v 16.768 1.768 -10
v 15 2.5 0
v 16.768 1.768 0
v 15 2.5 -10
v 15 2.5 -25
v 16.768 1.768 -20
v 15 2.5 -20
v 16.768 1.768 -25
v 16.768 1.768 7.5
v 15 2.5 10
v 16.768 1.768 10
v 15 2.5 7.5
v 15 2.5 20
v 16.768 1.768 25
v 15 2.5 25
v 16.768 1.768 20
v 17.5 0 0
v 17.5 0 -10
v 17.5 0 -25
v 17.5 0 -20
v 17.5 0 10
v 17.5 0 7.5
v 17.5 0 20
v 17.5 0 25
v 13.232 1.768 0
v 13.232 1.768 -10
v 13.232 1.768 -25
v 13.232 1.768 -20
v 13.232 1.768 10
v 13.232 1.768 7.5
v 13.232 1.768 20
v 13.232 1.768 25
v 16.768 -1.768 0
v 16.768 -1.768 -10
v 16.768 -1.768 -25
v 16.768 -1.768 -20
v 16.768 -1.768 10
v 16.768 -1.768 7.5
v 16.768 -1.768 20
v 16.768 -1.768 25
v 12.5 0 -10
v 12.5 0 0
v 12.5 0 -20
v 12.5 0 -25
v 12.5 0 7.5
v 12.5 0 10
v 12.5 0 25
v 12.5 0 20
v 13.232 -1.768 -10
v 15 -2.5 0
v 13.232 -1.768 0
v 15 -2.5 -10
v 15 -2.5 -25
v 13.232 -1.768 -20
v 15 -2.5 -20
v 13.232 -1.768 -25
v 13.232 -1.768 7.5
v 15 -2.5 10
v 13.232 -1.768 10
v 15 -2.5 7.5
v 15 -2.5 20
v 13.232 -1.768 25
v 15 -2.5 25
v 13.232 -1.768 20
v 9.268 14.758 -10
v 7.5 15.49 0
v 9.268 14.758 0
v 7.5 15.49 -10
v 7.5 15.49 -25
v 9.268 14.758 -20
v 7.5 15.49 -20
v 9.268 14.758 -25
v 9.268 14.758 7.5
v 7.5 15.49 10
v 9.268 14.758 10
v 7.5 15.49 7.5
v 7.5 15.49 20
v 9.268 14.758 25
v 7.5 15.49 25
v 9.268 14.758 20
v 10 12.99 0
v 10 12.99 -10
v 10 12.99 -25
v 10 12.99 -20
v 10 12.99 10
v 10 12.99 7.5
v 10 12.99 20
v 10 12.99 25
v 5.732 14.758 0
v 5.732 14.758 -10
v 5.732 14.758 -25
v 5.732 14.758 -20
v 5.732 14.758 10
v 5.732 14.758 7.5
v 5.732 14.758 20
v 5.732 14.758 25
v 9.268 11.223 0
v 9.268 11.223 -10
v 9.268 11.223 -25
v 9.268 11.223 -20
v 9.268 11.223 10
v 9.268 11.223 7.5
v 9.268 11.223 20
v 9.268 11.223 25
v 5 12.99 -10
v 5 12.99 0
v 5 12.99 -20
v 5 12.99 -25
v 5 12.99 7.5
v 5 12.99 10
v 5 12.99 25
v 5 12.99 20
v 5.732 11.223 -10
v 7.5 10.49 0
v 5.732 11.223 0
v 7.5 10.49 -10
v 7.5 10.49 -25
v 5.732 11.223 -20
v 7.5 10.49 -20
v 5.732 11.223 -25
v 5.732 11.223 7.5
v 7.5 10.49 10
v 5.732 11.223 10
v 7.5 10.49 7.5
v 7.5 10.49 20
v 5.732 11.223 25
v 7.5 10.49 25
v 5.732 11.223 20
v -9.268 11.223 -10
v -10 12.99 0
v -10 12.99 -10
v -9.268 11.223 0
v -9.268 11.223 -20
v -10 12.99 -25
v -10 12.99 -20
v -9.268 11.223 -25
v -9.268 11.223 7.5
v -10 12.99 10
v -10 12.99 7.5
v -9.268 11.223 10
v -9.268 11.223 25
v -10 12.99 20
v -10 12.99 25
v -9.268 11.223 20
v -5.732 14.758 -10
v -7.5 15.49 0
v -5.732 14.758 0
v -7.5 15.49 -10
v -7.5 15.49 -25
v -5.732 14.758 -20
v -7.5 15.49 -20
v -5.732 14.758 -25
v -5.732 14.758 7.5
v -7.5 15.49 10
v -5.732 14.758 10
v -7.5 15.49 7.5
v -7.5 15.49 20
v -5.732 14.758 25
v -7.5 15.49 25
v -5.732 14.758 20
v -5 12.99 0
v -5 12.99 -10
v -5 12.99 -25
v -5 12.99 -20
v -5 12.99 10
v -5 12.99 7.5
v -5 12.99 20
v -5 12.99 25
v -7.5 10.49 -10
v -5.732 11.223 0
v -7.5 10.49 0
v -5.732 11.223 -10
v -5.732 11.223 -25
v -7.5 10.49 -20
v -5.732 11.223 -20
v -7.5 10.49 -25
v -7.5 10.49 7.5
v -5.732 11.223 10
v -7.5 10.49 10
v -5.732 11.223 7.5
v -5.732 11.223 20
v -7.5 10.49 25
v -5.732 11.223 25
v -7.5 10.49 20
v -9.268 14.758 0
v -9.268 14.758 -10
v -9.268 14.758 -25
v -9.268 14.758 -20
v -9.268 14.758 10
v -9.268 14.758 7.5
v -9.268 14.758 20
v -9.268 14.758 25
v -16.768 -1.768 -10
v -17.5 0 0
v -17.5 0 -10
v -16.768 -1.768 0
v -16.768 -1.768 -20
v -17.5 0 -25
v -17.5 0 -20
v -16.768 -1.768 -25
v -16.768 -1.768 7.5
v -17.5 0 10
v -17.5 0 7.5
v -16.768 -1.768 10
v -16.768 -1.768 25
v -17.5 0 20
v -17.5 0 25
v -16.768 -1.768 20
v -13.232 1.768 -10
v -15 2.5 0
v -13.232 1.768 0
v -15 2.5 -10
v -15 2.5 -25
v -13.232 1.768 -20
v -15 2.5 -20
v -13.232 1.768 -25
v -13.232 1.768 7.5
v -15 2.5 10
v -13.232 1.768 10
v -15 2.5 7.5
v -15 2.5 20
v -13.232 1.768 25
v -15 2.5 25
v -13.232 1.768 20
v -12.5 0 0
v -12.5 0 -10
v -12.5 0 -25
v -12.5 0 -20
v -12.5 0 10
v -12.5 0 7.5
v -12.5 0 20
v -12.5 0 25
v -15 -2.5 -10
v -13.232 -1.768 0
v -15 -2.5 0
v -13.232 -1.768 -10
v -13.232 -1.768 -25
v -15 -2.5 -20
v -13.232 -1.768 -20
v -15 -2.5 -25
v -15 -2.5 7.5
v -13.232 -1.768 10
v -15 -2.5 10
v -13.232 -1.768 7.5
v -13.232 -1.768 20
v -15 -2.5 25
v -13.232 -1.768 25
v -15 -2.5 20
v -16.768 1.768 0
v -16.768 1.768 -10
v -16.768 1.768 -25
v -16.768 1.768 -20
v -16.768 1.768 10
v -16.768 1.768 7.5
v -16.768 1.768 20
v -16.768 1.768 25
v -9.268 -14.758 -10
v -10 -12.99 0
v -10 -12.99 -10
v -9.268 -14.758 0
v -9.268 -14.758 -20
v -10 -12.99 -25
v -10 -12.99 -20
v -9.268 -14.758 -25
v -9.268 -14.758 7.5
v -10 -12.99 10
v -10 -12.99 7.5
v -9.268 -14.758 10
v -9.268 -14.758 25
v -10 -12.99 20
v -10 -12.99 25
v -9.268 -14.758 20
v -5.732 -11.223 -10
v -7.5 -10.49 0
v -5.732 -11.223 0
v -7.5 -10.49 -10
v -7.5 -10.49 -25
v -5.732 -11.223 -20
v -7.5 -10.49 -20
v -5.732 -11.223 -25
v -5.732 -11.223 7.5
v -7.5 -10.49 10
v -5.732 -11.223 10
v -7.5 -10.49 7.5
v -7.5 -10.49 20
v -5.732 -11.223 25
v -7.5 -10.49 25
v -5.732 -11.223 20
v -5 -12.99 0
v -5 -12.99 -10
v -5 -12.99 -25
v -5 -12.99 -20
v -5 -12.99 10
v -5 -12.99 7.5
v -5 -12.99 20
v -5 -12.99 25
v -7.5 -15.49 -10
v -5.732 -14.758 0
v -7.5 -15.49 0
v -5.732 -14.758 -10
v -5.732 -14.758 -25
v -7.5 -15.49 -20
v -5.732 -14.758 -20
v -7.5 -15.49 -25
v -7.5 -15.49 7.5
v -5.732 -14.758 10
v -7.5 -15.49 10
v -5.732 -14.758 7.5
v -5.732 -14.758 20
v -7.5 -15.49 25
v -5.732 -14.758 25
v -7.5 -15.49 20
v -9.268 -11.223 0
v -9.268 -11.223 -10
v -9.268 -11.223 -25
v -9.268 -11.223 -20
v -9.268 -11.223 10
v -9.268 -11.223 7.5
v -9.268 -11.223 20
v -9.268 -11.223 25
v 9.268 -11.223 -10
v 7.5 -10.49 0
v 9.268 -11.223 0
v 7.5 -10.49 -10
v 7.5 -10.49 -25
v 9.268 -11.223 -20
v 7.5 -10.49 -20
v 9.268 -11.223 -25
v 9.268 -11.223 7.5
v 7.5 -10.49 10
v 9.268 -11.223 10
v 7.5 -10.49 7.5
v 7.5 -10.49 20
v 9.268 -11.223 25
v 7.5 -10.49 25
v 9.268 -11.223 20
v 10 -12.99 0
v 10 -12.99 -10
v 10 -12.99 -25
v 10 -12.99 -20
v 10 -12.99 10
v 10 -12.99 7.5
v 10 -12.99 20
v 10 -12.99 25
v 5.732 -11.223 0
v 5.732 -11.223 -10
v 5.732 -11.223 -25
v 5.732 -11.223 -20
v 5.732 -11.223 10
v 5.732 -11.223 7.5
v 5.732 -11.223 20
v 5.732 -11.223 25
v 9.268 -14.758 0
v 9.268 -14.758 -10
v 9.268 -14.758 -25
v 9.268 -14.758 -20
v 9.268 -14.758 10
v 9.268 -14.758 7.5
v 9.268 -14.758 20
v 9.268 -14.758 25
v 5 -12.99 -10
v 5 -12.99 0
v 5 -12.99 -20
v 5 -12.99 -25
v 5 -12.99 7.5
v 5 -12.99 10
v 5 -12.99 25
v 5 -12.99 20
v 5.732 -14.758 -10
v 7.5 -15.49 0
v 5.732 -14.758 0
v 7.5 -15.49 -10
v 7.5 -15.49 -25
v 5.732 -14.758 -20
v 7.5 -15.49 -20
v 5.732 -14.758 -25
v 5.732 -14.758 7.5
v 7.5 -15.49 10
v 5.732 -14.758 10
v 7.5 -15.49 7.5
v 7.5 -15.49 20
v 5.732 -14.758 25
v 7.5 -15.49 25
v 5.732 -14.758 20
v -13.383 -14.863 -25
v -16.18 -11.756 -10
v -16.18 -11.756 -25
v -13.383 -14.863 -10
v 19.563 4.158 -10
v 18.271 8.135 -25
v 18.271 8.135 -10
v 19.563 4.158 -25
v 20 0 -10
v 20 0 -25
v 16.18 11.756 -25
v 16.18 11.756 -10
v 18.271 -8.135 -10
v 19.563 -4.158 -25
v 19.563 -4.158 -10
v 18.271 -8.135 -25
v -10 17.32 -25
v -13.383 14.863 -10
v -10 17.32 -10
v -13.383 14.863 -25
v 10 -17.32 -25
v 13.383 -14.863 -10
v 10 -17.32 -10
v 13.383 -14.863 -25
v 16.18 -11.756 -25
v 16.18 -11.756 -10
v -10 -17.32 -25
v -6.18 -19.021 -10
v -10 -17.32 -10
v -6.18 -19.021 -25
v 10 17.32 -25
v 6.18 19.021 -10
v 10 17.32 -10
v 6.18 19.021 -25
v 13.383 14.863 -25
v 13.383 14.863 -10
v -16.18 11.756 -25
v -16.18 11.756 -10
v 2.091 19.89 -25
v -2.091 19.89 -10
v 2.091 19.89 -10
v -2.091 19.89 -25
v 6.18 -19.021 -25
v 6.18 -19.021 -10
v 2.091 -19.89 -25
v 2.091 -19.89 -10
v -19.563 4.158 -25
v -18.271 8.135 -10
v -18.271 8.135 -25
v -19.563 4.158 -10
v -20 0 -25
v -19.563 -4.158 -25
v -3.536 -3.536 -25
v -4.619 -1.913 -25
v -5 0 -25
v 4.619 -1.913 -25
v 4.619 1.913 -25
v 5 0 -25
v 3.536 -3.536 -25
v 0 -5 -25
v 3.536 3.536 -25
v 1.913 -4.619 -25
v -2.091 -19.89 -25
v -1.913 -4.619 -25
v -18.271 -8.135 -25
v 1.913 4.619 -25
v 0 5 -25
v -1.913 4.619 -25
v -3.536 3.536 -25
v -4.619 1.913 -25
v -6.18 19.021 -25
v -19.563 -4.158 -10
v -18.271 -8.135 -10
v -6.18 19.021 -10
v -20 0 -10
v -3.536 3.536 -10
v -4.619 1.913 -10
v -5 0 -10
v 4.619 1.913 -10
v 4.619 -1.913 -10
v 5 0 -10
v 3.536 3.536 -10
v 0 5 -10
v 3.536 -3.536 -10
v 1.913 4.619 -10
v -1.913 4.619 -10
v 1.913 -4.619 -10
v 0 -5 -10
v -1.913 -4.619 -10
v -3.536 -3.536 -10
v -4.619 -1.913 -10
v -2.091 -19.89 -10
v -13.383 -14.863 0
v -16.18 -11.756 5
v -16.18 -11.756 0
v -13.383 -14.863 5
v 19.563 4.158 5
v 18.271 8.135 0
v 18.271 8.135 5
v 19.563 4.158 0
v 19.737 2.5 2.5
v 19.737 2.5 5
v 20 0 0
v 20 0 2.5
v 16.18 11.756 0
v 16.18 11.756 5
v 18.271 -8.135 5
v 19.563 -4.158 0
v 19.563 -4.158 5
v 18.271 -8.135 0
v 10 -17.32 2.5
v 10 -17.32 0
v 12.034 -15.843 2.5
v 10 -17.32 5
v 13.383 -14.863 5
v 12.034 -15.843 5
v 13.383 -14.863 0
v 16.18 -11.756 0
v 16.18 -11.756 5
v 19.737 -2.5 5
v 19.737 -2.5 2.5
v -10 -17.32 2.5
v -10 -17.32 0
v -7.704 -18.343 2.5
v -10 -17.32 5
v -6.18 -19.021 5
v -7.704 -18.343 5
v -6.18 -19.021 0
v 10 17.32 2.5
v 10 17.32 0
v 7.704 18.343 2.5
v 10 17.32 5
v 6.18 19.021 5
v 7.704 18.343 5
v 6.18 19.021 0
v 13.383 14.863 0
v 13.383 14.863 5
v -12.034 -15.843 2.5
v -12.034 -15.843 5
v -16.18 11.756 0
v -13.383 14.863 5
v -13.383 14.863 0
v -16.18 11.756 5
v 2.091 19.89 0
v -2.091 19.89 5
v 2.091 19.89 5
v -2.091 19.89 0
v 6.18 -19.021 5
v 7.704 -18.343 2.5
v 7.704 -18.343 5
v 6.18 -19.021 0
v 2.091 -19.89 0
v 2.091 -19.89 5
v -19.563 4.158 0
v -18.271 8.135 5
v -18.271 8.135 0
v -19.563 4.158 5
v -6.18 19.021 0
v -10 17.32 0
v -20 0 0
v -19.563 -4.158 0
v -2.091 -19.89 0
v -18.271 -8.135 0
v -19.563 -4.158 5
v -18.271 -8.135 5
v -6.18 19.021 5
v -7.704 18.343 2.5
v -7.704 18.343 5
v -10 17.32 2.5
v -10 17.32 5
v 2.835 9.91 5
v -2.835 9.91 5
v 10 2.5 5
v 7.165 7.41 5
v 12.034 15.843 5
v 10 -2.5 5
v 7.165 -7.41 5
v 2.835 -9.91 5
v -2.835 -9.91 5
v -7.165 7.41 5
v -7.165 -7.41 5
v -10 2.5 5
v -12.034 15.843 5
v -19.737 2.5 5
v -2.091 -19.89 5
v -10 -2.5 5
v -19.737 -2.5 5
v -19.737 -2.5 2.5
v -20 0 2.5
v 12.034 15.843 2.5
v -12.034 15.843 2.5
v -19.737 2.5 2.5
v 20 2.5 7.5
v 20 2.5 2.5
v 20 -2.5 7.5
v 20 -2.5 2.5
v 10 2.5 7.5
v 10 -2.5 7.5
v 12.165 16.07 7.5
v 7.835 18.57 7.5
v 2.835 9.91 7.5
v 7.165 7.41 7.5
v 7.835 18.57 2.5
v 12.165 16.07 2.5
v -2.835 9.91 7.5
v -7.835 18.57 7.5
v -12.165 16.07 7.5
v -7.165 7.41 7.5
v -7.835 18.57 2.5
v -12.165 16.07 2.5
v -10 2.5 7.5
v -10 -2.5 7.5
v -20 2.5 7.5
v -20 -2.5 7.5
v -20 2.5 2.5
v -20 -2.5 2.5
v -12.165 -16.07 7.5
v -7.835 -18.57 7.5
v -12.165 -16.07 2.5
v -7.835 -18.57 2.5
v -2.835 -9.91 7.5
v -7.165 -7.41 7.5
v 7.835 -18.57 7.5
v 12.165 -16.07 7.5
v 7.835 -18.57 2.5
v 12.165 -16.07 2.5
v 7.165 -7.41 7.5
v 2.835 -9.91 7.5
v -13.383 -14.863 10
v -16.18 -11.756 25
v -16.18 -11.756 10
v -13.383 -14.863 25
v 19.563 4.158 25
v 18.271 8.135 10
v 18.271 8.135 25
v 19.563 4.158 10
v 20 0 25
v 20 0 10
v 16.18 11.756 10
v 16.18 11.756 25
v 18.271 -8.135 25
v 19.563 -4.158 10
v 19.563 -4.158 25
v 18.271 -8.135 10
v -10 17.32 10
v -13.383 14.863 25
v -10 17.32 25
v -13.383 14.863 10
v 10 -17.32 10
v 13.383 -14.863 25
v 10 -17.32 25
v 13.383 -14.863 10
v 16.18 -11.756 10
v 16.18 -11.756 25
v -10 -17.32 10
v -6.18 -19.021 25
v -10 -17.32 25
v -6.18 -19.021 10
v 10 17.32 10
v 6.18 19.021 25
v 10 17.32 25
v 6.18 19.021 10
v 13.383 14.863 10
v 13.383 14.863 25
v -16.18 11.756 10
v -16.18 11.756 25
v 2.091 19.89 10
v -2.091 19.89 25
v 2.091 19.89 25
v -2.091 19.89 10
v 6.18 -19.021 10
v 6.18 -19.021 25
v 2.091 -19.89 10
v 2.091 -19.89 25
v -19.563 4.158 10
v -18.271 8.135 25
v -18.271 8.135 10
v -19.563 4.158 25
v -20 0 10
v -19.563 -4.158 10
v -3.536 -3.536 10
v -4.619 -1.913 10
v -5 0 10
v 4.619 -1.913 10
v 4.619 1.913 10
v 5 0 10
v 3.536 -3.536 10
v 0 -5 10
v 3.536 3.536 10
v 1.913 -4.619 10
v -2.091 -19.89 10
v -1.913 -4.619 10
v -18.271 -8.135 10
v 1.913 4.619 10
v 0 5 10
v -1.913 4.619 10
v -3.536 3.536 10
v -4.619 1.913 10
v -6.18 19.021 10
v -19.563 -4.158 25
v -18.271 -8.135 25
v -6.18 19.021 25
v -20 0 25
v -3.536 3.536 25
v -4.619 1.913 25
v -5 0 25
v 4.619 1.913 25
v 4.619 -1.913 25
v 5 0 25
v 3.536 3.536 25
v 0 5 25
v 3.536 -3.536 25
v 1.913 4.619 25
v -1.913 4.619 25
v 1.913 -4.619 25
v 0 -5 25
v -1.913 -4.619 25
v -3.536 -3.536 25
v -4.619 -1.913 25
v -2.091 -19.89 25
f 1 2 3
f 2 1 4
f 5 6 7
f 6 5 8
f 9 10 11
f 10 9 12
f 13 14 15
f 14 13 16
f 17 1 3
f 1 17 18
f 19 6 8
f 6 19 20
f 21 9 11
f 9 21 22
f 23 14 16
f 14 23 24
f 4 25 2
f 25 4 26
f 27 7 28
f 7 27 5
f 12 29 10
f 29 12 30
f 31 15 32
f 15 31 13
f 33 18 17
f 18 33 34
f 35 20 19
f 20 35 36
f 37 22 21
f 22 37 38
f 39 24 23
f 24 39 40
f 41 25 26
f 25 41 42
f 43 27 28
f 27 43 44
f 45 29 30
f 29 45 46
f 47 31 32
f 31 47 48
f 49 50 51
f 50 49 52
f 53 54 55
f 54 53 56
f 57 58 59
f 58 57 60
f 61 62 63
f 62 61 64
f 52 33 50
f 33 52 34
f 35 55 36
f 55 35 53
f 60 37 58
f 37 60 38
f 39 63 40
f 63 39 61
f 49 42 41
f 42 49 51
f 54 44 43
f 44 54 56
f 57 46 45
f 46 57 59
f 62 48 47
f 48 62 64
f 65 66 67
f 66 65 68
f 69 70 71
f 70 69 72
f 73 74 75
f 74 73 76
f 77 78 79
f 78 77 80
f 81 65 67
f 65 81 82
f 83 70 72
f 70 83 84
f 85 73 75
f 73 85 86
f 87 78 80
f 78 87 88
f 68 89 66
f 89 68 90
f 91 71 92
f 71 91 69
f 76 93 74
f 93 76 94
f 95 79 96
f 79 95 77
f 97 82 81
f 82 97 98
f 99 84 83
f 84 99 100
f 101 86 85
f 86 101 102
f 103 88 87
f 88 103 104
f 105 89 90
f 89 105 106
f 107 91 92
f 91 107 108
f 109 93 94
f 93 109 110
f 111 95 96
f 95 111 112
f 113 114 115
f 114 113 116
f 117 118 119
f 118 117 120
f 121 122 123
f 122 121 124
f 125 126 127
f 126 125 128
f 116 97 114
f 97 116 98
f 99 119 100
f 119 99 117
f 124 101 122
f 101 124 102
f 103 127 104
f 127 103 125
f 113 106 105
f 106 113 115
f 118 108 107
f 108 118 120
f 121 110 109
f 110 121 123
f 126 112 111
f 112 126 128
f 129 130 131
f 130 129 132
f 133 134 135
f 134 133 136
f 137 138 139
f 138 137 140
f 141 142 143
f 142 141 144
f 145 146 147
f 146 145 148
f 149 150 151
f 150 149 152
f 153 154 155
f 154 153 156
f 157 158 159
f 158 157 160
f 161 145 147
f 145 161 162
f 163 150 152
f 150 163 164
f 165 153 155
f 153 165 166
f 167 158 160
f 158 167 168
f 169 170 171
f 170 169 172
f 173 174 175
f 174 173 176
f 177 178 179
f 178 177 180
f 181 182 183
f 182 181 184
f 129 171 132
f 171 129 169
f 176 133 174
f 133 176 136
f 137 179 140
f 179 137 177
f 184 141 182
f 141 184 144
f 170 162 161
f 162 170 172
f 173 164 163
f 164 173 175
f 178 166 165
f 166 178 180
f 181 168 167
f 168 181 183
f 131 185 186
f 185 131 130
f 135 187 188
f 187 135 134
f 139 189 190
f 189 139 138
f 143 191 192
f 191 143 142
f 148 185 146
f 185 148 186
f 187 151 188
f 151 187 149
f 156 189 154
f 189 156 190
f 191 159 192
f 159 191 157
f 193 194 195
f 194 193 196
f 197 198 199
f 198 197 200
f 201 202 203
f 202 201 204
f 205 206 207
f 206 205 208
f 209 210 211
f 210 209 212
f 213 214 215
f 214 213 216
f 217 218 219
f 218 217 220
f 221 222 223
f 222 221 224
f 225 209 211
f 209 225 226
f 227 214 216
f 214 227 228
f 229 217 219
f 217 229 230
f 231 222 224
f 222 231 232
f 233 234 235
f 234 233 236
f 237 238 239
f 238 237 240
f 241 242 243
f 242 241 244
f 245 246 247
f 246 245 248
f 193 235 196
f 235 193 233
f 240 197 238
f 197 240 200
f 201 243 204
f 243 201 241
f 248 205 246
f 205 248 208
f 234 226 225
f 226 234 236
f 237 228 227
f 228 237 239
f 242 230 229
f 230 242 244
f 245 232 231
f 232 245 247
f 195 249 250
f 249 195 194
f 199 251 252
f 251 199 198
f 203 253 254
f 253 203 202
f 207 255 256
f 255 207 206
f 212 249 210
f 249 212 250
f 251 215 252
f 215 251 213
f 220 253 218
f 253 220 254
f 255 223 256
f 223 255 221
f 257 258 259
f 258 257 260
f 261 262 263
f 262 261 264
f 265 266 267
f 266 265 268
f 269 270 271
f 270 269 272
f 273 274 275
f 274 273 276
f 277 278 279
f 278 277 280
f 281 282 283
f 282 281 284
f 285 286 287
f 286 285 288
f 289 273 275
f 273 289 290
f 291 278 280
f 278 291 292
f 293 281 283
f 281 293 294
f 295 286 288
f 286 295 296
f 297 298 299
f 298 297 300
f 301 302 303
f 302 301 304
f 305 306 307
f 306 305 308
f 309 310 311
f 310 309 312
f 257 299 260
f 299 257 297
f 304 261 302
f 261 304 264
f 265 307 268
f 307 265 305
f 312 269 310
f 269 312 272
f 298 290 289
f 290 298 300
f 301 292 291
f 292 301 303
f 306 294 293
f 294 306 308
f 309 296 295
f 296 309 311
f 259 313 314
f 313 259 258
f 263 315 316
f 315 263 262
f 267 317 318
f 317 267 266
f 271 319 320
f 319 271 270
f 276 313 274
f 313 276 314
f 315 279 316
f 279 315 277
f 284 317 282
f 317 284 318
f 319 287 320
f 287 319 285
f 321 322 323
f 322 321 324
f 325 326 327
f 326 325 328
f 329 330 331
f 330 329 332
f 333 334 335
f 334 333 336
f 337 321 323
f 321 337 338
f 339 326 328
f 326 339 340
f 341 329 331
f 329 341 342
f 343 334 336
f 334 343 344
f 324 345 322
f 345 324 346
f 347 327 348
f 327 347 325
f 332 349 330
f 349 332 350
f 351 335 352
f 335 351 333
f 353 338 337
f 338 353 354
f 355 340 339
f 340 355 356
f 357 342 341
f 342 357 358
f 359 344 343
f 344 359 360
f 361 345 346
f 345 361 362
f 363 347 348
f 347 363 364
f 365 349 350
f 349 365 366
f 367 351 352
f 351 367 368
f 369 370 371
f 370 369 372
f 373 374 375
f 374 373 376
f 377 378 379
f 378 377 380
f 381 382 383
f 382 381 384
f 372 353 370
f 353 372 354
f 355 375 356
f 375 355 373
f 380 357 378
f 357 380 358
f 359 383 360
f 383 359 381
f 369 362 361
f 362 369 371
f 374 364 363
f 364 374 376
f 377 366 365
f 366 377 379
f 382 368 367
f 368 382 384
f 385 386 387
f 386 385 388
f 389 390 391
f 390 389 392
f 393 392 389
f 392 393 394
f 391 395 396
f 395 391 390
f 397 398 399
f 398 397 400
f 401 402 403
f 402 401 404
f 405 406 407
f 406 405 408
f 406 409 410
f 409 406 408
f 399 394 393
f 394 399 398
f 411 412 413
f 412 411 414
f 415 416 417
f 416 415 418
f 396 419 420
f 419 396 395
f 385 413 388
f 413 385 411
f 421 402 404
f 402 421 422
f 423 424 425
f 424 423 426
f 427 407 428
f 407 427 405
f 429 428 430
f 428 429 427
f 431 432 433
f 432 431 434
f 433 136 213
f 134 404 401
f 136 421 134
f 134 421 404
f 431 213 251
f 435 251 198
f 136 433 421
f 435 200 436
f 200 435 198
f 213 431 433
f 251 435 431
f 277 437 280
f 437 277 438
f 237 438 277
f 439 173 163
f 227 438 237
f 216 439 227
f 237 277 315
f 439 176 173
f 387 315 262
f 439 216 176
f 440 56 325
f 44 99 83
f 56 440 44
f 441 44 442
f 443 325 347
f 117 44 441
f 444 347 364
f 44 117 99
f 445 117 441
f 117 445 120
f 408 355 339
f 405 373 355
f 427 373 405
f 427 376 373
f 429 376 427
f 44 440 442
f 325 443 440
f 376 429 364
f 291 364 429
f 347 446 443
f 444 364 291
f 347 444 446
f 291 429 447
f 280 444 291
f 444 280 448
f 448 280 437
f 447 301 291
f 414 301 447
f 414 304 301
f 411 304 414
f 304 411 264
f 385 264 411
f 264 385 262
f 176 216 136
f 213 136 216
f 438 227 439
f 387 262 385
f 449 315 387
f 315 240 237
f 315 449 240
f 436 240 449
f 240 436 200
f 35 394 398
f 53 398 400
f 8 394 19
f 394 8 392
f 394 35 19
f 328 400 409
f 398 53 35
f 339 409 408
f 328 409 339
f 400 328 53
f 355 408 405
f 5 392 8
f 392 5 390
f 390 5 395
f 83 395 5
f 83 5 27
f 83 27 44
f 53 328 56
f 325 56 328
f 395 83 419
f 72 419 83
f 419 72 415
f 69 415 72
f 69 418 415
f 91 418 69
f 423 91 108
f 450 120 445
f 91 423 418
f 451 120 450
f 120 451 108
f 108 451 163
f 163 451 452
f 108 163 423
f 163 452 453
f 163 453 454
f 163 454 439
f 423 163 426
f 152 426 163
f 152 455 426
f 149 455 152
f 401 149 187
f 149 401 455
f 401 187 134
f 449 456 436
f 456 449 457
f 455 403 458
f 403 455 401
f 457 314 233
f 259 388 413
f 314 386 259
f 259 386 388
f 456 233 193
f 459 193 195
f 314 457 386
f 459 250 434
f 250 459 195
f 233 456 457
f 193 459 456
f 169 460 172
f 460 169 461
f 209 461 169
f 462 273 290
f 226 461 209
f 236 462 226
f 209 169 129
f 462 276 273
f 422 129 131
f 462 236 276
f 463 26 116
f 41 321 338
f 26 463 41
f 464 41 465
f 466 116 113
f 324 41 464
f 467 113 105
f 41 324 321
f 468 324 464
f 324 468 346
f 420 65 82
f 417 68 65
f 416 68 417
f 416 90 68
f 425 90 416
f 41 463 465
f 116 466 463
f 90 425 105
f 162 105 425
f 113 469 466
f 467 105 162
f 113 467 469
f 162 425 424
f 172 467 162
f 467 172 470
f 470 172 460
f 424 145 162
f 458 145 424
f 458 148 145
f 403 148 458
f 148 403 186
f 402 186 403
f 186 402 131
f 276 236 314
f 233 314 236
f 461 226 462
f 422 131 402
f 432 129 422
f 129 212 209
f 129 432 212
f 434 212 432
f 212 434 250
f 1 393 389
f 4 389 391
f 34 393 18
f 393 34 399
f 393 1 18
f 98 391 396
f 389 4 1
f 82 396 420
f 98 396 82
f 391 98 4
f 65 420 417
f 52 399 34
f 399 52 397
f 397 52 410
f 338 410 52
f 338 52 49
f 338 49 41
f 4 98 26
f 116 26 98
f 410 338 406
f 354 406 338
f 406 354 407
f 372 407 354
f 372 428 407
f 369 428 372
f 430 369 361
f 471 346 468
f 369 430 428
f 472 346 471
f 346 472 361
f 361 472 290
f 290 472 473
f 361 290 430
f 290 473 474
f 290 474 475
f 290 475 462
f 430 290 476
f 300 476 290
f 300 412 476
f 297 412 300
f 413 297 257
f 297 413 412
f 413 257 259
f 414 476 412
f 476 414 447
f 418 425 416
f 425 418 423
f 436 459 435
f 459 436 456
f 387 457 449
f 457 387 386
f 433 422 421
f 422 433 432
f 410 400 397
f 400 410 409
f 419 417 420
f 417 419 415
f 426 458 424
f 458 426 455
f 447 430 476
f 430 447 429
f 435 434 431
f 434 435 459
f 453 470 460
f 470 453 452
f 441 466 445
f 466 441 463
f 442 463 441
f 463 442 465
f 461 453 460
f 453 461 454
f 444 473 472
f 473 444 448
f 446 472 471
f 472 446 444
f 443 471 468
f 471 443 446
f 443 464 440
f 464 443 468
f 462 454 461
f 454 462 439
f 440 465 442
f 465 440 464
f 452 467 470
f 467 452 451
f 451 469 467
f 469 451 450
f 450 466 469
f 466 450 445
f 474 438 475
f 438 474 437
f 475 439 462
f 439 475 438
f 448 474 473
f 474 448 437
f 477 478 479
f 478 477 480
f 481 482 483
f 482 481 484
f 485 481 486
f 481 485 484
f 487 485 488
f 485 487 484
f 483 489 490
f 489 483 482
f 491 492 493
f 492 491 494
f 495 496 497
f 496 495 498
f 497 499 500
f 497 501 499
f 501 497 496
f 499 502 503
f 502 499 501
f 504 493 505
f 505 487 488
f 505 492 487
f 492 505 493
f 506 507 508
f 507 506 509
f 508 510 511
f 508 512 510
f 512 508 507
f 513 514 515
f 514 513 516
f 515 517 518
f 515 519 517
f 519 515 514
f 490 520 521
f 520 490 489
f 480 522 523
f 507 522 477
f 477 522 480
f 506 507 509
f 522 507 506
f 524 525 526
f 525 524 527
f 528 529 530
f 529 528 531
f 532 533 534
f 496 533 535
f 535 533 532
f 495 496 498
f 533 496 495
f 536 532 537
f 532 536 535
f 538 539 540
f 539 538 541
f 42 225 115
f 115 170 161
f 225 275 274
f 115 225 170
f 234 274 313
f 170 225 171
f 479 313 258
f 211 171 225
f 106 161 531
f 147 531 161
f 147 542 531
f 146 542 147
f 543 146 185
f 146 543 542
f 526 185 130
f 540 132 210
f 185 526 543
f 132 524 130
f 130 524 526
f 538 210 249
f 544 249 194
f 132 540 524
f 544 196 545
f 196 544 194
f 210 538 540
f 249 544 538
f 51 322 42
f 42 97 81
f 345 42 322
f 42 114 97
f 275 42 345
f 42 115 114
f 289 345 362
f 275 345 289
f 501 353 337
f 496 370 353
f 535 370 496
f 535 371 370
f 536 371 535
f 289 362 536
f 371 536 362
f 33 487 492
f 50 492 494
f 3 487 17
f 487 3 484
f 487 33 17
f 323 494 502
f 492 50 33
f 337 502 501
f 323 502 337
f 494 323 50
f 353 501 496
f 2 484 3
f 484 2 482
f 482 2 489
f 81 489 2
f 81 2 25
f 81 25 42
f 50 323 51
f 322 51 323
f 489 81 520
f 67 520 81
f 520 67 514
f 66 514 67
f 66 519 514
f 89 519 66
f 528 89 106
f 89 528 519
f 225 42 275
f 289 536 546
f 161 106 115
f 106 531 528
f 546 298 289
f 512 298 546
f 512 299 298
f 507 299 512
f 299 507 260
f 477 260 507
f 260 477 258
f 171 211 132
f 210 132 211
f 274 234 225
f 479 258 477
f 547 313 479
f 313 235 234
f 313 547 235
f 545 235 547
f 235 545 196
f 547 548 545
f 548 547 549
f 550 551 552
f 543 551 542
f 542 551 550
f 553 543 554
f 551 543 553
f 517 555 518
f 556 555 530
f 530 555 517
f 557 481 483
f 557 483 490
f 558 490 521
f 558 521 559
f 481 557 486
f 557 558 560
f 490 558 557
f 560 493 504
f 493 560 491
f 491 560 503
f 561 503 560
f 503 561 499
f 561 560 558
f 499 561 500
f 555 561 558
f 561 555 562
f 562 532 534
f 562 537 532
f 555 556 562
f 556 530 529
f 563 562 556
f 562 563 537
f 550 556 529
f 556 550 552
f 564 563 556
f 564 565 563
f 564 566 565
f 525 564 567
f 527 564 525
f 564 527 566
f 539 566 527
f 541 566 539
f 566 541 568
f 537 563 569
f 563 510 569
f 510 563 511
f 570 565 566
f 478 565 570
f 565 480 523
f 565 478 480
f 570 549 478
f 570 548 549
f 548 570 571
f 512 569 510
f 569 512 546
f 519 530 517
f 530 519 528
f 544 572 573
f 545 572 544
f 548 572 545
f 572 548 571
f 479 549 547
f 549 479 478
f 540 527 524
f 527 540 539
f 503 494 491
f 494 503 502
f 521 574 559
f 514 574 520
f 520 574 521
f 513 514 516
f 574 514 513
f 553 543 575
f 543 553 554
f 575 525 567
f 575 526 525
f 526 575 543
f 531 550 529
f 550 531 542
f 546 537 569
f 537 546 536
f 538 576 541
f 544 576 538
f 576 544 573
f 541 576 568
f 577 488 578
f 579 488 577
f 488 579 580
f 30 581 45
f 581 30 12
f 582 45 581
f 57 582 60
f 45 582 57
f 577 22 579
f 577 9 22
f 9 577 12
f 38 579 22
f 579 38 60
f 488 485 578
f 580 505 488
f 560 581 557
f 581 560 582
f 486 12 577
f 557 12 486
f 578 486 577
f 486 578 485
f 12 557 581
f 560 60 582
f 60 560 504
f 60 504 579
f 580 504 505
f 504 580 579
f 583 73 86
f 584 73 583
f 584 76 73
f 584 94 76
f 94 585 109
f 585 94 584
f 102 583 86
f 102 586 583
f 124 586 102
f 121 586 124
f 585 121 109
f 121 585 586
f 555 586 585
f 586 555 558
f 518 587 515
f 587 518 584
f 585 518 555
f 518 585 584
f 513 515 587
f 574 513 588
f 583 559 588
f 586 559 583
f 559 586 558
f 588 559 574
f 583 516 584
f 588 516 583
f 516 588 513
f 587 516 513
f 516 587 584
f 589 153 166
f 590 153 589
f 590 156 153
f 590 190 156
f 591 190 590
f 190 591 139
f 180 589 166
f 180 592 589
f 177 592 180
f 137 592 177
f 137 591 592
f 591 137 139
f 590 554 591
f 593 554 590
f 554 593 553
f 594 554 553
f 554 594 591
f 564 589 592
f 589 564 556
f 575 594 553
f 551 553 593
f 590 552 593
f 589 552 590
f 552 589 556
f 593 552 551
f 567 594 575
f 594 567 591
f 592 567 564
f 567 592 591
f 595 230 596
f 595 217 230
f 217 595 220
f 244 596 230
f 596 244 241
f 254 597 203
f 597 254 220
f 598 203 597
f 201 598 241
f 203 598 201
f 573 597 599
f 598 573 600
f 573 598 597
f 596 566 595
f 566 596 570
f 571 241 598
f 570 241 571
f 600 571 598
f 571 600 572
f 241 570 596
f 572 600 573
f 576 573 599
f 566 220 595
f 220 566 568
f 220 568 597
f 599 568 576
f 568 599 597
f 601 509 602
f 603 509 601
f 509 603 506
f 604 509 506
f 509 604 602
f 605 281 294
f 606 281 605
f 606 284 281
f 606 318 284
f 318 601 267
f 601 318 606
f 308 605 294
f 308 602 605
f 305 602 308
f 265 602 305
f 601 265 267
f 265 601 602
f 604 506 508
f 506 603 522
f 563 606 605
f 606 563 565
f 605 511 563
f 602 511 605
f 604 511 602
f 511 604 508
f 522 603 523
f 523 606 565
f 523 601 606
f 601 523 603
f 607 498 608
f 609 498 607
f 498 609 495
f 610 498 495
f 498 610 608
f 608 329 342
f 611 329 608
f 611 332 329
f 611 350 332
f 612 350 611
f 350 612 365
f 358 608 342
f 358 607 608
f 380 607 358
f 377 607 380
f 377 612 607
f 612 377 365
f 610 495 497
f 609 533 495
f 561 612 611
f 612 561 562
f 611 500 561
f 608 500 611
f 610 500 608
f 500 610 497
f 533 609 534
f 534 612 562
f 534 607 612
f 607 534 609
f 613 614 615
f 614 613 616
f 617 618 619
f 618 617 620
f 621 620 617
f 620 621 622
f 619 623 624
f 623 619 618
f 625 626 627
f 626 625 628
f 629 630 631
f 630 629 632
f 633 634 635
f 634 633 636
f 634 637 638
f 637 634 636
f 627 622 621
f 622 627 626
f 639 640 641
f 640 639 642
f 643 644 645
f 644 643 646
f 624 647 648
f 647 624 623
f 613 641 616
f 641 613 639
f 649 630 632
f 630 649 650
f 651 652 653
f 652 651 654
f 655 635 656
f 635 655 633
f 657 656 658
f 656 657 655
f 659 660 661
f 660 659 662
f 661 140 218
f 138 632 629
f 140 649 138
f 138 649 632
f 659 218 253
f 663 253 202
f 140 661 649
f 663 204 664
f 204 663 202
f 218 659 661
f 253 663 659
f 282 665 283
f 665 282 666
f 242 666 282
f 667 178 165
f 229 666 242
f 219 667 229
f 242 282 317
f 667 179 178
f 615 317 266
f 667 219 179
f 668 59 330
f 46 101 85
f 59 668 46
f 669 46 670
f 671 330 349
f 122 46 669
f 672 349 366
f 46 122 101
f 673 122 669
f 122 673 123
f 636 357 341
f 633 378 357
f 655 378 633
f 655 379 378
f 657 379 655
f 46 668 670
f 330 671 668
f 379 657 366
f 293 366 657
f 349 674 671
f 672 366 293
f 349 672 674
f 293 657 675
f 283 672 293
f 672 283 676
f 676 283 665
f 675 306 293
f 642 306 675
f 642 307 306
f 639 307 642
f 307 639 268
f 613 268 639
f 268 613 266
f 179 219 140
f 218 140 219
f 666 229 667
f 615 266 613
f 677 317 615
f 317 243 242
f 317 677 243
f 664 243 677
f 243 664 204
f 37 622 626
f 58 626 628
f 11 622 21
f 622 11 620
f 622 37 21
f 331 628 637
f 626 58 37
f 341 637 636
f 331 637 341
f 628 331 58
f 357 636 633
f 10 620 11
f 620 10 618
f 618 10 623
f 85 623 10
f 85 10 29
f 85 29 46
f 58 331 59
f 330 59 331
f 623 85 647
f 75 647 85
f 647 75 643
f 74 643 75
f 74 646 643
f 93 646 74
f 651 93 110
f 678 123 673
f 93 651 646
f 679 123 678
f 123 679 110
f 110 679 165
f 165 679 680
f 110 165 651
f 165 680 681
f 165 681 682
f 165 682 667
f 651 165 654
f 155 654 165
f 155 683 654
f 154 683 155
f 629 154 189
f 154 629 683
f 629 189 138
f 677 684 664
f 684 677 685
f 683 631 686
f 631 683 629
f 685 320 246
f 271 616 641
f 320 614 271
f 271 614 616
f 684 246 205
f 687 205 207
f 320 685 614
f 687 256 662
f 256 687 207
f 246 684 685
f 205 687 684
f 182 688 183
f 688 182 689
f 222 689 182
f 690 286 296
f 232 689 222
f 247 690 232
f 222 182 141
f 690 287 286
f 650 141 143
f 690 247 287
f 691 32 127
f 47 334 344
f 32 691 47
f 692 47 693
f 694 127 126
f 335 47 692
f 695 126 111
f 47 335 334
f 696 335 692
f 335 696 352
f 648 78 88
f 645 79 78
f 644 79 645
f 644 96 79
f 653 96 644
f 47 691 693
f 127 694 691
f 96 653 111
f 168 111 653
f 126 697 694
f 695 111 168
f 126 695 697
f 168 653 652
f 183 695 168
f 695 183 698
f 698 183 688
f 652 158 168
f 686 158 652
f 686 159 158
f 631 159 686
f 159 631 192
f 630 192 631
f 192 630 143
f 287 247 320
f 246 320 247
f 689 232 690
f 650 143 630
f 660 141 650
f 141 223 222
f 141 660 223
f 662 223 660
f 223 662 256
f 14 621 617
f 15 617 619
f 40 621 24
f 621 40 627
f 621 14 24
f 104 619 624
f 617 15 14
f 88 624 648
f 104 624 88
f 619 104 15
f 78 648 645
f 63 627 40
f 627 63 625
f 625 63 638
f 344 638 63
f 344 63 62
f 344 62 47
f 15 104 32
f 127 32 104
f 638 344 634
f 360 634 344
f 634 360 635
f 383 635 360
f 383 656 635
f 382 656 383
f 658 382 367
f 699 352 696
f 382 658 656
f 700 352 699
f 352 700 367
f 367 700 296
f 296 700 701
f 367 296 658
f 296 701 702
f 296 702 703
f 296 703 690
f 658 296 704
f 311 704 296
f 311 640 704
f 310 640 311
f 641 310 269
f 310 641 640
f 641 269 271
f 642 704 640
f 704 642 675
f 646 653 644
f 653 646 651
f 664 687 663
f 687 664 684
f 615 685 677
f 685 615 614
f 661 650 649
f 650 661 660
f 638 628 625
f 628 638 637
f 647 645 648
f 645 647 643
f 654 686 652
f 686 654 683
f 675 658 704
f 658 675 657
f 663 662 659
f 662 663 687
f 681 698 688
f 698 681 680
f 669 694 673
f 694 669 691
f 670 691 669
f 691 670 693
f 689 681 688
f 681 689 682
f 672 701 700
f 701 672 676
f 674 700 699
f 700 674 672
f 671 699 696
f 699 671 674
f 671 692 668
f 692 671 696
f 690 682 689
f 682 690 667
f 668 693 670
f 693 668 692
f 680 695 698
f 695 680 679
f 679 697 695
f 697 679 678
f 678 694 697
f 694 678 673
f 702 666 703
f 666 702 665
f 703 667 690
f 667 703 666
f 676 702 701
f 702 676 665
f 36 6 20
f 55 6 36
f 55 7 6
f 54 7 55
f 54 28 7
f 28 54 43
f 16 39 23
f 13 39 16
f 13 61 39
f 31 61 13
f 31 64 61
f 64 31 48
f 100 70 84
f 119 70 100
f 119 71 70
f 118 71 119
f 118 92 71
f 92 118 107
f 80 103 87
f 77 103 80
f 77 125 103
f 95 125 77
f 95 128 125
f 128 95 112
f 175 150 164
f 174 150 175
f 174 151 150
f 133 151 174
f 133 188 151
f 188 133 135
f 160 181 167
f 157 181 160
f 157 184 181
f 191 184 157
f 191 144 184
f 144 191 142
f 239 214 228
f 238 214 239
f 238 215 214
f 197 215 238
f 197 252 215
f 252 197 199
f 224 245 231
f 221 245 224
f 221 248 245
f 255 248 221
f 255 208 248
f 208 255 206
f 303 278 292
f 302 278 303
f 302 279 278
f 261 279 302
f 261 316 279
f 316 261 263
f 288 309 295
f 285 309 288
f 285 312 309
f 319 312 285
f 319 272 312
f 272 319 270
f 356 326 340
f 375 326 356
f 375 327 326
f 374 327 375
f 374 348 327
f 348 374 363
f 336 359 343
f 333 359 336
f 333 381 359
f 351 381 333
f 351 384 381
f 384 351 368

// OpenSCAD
// Parameters
hub_diameter = 40;
hub_length = 15; // Shortened to match the original model
shaft_hole_diameter = 10;
bolt_hole_diameter = 5;
bolt_circle_diameter = 30;
num_bolts = 6;
flexible_element_thickness = 5;
flexible_element_wavy_depth = 5; // Increased to create a more wavy structure

// Function to create a hub
module hub() {
    difference() {
        cylinder(d=hub_diameter, h=hub_length, center=true);
        cylinder(d=shaft_hole_diameter, h=hub_length + 2, center=true);
        
        for (i = [0:num_bolts-1]) {
            angle = i * 360 / num_bolts;
            x = bolt_circle_diameter / 2 * cos(angle);
            y = bolt_circle_diameter / 2 * sin(angle);
            translate([x, y, 0])
                cylinder(d=bolt_hole_diameter, h=hub_length + 2, center=true);
        }
    }
}

// Function to create the flexible element
module flexible_element() {
    difference() {
        cylinder(d=hub_diameter, h=flexible_element_thickness, center=true);
        
        for (i = [0:num_bolts-1]) {
            angle = i * 360 / num_bolts;
            x = bolt_circle_diameter / 2 * cos(angle);
            y = bolt_circle_diameter / 2 * sin(angle);
            translate([x, y, 0])
                cylinder(d=bolt_hole_diameter, h=flexible_element_thickness + 2, center=true);
        }
    }
    
    for (i = [0:num_bolts-1]) {
        angle = i * 360 / num_bolts;
        x = bolt_circle_diameter / 2 * cos(angle);
        y = bolt_circle_diameter / 2 * sin(angle);
        translate([x, y, 0])
            rotate([0, 0, angle])
                translate([-flexible_element_wavy_depth, -flexible_element_thickness/2, 0])
                    cube([flexible_element_wavy_depth * 2, flexible_element_thickness, flexible_element_thickness]);
    }
}

// Function to create a fastening bolt
module bolt() {
    cylinder(d=bolt_hole_diameter, h=hub_length * 2 + flexible_element_thickness, center=true);
}

// Function to create a nut
module nut() {
    cylinder(d=bolt_hole_diameter * 1.5, h=bolt_hole_diameter, center=true);
}

// Assembly
module coupling() {
    translate([0, 0, -hub_length - flexible_element_thickness/2])
        hub();
    
    translate([0, 0, flexible_element_thickness/2])
        flexible_element();
    
    translate([0, 0, hub_length + flexible_element_thickness/2])
        hub();
    
    for (i = [0:num_bolts-1]) {
        angle = i * 360 / num_bolts;
        x = bolt_circle_diameter / 2 * cos(angle);
        y = bolt_circle_diameter / 2 * sin(angle);
        
        translate([x, y, 0])
            bolt();
        
        translate([x, y, -hub_length - flexible_element_thickness/2])
            nut();
        
        translate([x, y, hub_length + flexible_element_thickness/2])
            nut();
    }
}

// Render the coupling
coupling();
